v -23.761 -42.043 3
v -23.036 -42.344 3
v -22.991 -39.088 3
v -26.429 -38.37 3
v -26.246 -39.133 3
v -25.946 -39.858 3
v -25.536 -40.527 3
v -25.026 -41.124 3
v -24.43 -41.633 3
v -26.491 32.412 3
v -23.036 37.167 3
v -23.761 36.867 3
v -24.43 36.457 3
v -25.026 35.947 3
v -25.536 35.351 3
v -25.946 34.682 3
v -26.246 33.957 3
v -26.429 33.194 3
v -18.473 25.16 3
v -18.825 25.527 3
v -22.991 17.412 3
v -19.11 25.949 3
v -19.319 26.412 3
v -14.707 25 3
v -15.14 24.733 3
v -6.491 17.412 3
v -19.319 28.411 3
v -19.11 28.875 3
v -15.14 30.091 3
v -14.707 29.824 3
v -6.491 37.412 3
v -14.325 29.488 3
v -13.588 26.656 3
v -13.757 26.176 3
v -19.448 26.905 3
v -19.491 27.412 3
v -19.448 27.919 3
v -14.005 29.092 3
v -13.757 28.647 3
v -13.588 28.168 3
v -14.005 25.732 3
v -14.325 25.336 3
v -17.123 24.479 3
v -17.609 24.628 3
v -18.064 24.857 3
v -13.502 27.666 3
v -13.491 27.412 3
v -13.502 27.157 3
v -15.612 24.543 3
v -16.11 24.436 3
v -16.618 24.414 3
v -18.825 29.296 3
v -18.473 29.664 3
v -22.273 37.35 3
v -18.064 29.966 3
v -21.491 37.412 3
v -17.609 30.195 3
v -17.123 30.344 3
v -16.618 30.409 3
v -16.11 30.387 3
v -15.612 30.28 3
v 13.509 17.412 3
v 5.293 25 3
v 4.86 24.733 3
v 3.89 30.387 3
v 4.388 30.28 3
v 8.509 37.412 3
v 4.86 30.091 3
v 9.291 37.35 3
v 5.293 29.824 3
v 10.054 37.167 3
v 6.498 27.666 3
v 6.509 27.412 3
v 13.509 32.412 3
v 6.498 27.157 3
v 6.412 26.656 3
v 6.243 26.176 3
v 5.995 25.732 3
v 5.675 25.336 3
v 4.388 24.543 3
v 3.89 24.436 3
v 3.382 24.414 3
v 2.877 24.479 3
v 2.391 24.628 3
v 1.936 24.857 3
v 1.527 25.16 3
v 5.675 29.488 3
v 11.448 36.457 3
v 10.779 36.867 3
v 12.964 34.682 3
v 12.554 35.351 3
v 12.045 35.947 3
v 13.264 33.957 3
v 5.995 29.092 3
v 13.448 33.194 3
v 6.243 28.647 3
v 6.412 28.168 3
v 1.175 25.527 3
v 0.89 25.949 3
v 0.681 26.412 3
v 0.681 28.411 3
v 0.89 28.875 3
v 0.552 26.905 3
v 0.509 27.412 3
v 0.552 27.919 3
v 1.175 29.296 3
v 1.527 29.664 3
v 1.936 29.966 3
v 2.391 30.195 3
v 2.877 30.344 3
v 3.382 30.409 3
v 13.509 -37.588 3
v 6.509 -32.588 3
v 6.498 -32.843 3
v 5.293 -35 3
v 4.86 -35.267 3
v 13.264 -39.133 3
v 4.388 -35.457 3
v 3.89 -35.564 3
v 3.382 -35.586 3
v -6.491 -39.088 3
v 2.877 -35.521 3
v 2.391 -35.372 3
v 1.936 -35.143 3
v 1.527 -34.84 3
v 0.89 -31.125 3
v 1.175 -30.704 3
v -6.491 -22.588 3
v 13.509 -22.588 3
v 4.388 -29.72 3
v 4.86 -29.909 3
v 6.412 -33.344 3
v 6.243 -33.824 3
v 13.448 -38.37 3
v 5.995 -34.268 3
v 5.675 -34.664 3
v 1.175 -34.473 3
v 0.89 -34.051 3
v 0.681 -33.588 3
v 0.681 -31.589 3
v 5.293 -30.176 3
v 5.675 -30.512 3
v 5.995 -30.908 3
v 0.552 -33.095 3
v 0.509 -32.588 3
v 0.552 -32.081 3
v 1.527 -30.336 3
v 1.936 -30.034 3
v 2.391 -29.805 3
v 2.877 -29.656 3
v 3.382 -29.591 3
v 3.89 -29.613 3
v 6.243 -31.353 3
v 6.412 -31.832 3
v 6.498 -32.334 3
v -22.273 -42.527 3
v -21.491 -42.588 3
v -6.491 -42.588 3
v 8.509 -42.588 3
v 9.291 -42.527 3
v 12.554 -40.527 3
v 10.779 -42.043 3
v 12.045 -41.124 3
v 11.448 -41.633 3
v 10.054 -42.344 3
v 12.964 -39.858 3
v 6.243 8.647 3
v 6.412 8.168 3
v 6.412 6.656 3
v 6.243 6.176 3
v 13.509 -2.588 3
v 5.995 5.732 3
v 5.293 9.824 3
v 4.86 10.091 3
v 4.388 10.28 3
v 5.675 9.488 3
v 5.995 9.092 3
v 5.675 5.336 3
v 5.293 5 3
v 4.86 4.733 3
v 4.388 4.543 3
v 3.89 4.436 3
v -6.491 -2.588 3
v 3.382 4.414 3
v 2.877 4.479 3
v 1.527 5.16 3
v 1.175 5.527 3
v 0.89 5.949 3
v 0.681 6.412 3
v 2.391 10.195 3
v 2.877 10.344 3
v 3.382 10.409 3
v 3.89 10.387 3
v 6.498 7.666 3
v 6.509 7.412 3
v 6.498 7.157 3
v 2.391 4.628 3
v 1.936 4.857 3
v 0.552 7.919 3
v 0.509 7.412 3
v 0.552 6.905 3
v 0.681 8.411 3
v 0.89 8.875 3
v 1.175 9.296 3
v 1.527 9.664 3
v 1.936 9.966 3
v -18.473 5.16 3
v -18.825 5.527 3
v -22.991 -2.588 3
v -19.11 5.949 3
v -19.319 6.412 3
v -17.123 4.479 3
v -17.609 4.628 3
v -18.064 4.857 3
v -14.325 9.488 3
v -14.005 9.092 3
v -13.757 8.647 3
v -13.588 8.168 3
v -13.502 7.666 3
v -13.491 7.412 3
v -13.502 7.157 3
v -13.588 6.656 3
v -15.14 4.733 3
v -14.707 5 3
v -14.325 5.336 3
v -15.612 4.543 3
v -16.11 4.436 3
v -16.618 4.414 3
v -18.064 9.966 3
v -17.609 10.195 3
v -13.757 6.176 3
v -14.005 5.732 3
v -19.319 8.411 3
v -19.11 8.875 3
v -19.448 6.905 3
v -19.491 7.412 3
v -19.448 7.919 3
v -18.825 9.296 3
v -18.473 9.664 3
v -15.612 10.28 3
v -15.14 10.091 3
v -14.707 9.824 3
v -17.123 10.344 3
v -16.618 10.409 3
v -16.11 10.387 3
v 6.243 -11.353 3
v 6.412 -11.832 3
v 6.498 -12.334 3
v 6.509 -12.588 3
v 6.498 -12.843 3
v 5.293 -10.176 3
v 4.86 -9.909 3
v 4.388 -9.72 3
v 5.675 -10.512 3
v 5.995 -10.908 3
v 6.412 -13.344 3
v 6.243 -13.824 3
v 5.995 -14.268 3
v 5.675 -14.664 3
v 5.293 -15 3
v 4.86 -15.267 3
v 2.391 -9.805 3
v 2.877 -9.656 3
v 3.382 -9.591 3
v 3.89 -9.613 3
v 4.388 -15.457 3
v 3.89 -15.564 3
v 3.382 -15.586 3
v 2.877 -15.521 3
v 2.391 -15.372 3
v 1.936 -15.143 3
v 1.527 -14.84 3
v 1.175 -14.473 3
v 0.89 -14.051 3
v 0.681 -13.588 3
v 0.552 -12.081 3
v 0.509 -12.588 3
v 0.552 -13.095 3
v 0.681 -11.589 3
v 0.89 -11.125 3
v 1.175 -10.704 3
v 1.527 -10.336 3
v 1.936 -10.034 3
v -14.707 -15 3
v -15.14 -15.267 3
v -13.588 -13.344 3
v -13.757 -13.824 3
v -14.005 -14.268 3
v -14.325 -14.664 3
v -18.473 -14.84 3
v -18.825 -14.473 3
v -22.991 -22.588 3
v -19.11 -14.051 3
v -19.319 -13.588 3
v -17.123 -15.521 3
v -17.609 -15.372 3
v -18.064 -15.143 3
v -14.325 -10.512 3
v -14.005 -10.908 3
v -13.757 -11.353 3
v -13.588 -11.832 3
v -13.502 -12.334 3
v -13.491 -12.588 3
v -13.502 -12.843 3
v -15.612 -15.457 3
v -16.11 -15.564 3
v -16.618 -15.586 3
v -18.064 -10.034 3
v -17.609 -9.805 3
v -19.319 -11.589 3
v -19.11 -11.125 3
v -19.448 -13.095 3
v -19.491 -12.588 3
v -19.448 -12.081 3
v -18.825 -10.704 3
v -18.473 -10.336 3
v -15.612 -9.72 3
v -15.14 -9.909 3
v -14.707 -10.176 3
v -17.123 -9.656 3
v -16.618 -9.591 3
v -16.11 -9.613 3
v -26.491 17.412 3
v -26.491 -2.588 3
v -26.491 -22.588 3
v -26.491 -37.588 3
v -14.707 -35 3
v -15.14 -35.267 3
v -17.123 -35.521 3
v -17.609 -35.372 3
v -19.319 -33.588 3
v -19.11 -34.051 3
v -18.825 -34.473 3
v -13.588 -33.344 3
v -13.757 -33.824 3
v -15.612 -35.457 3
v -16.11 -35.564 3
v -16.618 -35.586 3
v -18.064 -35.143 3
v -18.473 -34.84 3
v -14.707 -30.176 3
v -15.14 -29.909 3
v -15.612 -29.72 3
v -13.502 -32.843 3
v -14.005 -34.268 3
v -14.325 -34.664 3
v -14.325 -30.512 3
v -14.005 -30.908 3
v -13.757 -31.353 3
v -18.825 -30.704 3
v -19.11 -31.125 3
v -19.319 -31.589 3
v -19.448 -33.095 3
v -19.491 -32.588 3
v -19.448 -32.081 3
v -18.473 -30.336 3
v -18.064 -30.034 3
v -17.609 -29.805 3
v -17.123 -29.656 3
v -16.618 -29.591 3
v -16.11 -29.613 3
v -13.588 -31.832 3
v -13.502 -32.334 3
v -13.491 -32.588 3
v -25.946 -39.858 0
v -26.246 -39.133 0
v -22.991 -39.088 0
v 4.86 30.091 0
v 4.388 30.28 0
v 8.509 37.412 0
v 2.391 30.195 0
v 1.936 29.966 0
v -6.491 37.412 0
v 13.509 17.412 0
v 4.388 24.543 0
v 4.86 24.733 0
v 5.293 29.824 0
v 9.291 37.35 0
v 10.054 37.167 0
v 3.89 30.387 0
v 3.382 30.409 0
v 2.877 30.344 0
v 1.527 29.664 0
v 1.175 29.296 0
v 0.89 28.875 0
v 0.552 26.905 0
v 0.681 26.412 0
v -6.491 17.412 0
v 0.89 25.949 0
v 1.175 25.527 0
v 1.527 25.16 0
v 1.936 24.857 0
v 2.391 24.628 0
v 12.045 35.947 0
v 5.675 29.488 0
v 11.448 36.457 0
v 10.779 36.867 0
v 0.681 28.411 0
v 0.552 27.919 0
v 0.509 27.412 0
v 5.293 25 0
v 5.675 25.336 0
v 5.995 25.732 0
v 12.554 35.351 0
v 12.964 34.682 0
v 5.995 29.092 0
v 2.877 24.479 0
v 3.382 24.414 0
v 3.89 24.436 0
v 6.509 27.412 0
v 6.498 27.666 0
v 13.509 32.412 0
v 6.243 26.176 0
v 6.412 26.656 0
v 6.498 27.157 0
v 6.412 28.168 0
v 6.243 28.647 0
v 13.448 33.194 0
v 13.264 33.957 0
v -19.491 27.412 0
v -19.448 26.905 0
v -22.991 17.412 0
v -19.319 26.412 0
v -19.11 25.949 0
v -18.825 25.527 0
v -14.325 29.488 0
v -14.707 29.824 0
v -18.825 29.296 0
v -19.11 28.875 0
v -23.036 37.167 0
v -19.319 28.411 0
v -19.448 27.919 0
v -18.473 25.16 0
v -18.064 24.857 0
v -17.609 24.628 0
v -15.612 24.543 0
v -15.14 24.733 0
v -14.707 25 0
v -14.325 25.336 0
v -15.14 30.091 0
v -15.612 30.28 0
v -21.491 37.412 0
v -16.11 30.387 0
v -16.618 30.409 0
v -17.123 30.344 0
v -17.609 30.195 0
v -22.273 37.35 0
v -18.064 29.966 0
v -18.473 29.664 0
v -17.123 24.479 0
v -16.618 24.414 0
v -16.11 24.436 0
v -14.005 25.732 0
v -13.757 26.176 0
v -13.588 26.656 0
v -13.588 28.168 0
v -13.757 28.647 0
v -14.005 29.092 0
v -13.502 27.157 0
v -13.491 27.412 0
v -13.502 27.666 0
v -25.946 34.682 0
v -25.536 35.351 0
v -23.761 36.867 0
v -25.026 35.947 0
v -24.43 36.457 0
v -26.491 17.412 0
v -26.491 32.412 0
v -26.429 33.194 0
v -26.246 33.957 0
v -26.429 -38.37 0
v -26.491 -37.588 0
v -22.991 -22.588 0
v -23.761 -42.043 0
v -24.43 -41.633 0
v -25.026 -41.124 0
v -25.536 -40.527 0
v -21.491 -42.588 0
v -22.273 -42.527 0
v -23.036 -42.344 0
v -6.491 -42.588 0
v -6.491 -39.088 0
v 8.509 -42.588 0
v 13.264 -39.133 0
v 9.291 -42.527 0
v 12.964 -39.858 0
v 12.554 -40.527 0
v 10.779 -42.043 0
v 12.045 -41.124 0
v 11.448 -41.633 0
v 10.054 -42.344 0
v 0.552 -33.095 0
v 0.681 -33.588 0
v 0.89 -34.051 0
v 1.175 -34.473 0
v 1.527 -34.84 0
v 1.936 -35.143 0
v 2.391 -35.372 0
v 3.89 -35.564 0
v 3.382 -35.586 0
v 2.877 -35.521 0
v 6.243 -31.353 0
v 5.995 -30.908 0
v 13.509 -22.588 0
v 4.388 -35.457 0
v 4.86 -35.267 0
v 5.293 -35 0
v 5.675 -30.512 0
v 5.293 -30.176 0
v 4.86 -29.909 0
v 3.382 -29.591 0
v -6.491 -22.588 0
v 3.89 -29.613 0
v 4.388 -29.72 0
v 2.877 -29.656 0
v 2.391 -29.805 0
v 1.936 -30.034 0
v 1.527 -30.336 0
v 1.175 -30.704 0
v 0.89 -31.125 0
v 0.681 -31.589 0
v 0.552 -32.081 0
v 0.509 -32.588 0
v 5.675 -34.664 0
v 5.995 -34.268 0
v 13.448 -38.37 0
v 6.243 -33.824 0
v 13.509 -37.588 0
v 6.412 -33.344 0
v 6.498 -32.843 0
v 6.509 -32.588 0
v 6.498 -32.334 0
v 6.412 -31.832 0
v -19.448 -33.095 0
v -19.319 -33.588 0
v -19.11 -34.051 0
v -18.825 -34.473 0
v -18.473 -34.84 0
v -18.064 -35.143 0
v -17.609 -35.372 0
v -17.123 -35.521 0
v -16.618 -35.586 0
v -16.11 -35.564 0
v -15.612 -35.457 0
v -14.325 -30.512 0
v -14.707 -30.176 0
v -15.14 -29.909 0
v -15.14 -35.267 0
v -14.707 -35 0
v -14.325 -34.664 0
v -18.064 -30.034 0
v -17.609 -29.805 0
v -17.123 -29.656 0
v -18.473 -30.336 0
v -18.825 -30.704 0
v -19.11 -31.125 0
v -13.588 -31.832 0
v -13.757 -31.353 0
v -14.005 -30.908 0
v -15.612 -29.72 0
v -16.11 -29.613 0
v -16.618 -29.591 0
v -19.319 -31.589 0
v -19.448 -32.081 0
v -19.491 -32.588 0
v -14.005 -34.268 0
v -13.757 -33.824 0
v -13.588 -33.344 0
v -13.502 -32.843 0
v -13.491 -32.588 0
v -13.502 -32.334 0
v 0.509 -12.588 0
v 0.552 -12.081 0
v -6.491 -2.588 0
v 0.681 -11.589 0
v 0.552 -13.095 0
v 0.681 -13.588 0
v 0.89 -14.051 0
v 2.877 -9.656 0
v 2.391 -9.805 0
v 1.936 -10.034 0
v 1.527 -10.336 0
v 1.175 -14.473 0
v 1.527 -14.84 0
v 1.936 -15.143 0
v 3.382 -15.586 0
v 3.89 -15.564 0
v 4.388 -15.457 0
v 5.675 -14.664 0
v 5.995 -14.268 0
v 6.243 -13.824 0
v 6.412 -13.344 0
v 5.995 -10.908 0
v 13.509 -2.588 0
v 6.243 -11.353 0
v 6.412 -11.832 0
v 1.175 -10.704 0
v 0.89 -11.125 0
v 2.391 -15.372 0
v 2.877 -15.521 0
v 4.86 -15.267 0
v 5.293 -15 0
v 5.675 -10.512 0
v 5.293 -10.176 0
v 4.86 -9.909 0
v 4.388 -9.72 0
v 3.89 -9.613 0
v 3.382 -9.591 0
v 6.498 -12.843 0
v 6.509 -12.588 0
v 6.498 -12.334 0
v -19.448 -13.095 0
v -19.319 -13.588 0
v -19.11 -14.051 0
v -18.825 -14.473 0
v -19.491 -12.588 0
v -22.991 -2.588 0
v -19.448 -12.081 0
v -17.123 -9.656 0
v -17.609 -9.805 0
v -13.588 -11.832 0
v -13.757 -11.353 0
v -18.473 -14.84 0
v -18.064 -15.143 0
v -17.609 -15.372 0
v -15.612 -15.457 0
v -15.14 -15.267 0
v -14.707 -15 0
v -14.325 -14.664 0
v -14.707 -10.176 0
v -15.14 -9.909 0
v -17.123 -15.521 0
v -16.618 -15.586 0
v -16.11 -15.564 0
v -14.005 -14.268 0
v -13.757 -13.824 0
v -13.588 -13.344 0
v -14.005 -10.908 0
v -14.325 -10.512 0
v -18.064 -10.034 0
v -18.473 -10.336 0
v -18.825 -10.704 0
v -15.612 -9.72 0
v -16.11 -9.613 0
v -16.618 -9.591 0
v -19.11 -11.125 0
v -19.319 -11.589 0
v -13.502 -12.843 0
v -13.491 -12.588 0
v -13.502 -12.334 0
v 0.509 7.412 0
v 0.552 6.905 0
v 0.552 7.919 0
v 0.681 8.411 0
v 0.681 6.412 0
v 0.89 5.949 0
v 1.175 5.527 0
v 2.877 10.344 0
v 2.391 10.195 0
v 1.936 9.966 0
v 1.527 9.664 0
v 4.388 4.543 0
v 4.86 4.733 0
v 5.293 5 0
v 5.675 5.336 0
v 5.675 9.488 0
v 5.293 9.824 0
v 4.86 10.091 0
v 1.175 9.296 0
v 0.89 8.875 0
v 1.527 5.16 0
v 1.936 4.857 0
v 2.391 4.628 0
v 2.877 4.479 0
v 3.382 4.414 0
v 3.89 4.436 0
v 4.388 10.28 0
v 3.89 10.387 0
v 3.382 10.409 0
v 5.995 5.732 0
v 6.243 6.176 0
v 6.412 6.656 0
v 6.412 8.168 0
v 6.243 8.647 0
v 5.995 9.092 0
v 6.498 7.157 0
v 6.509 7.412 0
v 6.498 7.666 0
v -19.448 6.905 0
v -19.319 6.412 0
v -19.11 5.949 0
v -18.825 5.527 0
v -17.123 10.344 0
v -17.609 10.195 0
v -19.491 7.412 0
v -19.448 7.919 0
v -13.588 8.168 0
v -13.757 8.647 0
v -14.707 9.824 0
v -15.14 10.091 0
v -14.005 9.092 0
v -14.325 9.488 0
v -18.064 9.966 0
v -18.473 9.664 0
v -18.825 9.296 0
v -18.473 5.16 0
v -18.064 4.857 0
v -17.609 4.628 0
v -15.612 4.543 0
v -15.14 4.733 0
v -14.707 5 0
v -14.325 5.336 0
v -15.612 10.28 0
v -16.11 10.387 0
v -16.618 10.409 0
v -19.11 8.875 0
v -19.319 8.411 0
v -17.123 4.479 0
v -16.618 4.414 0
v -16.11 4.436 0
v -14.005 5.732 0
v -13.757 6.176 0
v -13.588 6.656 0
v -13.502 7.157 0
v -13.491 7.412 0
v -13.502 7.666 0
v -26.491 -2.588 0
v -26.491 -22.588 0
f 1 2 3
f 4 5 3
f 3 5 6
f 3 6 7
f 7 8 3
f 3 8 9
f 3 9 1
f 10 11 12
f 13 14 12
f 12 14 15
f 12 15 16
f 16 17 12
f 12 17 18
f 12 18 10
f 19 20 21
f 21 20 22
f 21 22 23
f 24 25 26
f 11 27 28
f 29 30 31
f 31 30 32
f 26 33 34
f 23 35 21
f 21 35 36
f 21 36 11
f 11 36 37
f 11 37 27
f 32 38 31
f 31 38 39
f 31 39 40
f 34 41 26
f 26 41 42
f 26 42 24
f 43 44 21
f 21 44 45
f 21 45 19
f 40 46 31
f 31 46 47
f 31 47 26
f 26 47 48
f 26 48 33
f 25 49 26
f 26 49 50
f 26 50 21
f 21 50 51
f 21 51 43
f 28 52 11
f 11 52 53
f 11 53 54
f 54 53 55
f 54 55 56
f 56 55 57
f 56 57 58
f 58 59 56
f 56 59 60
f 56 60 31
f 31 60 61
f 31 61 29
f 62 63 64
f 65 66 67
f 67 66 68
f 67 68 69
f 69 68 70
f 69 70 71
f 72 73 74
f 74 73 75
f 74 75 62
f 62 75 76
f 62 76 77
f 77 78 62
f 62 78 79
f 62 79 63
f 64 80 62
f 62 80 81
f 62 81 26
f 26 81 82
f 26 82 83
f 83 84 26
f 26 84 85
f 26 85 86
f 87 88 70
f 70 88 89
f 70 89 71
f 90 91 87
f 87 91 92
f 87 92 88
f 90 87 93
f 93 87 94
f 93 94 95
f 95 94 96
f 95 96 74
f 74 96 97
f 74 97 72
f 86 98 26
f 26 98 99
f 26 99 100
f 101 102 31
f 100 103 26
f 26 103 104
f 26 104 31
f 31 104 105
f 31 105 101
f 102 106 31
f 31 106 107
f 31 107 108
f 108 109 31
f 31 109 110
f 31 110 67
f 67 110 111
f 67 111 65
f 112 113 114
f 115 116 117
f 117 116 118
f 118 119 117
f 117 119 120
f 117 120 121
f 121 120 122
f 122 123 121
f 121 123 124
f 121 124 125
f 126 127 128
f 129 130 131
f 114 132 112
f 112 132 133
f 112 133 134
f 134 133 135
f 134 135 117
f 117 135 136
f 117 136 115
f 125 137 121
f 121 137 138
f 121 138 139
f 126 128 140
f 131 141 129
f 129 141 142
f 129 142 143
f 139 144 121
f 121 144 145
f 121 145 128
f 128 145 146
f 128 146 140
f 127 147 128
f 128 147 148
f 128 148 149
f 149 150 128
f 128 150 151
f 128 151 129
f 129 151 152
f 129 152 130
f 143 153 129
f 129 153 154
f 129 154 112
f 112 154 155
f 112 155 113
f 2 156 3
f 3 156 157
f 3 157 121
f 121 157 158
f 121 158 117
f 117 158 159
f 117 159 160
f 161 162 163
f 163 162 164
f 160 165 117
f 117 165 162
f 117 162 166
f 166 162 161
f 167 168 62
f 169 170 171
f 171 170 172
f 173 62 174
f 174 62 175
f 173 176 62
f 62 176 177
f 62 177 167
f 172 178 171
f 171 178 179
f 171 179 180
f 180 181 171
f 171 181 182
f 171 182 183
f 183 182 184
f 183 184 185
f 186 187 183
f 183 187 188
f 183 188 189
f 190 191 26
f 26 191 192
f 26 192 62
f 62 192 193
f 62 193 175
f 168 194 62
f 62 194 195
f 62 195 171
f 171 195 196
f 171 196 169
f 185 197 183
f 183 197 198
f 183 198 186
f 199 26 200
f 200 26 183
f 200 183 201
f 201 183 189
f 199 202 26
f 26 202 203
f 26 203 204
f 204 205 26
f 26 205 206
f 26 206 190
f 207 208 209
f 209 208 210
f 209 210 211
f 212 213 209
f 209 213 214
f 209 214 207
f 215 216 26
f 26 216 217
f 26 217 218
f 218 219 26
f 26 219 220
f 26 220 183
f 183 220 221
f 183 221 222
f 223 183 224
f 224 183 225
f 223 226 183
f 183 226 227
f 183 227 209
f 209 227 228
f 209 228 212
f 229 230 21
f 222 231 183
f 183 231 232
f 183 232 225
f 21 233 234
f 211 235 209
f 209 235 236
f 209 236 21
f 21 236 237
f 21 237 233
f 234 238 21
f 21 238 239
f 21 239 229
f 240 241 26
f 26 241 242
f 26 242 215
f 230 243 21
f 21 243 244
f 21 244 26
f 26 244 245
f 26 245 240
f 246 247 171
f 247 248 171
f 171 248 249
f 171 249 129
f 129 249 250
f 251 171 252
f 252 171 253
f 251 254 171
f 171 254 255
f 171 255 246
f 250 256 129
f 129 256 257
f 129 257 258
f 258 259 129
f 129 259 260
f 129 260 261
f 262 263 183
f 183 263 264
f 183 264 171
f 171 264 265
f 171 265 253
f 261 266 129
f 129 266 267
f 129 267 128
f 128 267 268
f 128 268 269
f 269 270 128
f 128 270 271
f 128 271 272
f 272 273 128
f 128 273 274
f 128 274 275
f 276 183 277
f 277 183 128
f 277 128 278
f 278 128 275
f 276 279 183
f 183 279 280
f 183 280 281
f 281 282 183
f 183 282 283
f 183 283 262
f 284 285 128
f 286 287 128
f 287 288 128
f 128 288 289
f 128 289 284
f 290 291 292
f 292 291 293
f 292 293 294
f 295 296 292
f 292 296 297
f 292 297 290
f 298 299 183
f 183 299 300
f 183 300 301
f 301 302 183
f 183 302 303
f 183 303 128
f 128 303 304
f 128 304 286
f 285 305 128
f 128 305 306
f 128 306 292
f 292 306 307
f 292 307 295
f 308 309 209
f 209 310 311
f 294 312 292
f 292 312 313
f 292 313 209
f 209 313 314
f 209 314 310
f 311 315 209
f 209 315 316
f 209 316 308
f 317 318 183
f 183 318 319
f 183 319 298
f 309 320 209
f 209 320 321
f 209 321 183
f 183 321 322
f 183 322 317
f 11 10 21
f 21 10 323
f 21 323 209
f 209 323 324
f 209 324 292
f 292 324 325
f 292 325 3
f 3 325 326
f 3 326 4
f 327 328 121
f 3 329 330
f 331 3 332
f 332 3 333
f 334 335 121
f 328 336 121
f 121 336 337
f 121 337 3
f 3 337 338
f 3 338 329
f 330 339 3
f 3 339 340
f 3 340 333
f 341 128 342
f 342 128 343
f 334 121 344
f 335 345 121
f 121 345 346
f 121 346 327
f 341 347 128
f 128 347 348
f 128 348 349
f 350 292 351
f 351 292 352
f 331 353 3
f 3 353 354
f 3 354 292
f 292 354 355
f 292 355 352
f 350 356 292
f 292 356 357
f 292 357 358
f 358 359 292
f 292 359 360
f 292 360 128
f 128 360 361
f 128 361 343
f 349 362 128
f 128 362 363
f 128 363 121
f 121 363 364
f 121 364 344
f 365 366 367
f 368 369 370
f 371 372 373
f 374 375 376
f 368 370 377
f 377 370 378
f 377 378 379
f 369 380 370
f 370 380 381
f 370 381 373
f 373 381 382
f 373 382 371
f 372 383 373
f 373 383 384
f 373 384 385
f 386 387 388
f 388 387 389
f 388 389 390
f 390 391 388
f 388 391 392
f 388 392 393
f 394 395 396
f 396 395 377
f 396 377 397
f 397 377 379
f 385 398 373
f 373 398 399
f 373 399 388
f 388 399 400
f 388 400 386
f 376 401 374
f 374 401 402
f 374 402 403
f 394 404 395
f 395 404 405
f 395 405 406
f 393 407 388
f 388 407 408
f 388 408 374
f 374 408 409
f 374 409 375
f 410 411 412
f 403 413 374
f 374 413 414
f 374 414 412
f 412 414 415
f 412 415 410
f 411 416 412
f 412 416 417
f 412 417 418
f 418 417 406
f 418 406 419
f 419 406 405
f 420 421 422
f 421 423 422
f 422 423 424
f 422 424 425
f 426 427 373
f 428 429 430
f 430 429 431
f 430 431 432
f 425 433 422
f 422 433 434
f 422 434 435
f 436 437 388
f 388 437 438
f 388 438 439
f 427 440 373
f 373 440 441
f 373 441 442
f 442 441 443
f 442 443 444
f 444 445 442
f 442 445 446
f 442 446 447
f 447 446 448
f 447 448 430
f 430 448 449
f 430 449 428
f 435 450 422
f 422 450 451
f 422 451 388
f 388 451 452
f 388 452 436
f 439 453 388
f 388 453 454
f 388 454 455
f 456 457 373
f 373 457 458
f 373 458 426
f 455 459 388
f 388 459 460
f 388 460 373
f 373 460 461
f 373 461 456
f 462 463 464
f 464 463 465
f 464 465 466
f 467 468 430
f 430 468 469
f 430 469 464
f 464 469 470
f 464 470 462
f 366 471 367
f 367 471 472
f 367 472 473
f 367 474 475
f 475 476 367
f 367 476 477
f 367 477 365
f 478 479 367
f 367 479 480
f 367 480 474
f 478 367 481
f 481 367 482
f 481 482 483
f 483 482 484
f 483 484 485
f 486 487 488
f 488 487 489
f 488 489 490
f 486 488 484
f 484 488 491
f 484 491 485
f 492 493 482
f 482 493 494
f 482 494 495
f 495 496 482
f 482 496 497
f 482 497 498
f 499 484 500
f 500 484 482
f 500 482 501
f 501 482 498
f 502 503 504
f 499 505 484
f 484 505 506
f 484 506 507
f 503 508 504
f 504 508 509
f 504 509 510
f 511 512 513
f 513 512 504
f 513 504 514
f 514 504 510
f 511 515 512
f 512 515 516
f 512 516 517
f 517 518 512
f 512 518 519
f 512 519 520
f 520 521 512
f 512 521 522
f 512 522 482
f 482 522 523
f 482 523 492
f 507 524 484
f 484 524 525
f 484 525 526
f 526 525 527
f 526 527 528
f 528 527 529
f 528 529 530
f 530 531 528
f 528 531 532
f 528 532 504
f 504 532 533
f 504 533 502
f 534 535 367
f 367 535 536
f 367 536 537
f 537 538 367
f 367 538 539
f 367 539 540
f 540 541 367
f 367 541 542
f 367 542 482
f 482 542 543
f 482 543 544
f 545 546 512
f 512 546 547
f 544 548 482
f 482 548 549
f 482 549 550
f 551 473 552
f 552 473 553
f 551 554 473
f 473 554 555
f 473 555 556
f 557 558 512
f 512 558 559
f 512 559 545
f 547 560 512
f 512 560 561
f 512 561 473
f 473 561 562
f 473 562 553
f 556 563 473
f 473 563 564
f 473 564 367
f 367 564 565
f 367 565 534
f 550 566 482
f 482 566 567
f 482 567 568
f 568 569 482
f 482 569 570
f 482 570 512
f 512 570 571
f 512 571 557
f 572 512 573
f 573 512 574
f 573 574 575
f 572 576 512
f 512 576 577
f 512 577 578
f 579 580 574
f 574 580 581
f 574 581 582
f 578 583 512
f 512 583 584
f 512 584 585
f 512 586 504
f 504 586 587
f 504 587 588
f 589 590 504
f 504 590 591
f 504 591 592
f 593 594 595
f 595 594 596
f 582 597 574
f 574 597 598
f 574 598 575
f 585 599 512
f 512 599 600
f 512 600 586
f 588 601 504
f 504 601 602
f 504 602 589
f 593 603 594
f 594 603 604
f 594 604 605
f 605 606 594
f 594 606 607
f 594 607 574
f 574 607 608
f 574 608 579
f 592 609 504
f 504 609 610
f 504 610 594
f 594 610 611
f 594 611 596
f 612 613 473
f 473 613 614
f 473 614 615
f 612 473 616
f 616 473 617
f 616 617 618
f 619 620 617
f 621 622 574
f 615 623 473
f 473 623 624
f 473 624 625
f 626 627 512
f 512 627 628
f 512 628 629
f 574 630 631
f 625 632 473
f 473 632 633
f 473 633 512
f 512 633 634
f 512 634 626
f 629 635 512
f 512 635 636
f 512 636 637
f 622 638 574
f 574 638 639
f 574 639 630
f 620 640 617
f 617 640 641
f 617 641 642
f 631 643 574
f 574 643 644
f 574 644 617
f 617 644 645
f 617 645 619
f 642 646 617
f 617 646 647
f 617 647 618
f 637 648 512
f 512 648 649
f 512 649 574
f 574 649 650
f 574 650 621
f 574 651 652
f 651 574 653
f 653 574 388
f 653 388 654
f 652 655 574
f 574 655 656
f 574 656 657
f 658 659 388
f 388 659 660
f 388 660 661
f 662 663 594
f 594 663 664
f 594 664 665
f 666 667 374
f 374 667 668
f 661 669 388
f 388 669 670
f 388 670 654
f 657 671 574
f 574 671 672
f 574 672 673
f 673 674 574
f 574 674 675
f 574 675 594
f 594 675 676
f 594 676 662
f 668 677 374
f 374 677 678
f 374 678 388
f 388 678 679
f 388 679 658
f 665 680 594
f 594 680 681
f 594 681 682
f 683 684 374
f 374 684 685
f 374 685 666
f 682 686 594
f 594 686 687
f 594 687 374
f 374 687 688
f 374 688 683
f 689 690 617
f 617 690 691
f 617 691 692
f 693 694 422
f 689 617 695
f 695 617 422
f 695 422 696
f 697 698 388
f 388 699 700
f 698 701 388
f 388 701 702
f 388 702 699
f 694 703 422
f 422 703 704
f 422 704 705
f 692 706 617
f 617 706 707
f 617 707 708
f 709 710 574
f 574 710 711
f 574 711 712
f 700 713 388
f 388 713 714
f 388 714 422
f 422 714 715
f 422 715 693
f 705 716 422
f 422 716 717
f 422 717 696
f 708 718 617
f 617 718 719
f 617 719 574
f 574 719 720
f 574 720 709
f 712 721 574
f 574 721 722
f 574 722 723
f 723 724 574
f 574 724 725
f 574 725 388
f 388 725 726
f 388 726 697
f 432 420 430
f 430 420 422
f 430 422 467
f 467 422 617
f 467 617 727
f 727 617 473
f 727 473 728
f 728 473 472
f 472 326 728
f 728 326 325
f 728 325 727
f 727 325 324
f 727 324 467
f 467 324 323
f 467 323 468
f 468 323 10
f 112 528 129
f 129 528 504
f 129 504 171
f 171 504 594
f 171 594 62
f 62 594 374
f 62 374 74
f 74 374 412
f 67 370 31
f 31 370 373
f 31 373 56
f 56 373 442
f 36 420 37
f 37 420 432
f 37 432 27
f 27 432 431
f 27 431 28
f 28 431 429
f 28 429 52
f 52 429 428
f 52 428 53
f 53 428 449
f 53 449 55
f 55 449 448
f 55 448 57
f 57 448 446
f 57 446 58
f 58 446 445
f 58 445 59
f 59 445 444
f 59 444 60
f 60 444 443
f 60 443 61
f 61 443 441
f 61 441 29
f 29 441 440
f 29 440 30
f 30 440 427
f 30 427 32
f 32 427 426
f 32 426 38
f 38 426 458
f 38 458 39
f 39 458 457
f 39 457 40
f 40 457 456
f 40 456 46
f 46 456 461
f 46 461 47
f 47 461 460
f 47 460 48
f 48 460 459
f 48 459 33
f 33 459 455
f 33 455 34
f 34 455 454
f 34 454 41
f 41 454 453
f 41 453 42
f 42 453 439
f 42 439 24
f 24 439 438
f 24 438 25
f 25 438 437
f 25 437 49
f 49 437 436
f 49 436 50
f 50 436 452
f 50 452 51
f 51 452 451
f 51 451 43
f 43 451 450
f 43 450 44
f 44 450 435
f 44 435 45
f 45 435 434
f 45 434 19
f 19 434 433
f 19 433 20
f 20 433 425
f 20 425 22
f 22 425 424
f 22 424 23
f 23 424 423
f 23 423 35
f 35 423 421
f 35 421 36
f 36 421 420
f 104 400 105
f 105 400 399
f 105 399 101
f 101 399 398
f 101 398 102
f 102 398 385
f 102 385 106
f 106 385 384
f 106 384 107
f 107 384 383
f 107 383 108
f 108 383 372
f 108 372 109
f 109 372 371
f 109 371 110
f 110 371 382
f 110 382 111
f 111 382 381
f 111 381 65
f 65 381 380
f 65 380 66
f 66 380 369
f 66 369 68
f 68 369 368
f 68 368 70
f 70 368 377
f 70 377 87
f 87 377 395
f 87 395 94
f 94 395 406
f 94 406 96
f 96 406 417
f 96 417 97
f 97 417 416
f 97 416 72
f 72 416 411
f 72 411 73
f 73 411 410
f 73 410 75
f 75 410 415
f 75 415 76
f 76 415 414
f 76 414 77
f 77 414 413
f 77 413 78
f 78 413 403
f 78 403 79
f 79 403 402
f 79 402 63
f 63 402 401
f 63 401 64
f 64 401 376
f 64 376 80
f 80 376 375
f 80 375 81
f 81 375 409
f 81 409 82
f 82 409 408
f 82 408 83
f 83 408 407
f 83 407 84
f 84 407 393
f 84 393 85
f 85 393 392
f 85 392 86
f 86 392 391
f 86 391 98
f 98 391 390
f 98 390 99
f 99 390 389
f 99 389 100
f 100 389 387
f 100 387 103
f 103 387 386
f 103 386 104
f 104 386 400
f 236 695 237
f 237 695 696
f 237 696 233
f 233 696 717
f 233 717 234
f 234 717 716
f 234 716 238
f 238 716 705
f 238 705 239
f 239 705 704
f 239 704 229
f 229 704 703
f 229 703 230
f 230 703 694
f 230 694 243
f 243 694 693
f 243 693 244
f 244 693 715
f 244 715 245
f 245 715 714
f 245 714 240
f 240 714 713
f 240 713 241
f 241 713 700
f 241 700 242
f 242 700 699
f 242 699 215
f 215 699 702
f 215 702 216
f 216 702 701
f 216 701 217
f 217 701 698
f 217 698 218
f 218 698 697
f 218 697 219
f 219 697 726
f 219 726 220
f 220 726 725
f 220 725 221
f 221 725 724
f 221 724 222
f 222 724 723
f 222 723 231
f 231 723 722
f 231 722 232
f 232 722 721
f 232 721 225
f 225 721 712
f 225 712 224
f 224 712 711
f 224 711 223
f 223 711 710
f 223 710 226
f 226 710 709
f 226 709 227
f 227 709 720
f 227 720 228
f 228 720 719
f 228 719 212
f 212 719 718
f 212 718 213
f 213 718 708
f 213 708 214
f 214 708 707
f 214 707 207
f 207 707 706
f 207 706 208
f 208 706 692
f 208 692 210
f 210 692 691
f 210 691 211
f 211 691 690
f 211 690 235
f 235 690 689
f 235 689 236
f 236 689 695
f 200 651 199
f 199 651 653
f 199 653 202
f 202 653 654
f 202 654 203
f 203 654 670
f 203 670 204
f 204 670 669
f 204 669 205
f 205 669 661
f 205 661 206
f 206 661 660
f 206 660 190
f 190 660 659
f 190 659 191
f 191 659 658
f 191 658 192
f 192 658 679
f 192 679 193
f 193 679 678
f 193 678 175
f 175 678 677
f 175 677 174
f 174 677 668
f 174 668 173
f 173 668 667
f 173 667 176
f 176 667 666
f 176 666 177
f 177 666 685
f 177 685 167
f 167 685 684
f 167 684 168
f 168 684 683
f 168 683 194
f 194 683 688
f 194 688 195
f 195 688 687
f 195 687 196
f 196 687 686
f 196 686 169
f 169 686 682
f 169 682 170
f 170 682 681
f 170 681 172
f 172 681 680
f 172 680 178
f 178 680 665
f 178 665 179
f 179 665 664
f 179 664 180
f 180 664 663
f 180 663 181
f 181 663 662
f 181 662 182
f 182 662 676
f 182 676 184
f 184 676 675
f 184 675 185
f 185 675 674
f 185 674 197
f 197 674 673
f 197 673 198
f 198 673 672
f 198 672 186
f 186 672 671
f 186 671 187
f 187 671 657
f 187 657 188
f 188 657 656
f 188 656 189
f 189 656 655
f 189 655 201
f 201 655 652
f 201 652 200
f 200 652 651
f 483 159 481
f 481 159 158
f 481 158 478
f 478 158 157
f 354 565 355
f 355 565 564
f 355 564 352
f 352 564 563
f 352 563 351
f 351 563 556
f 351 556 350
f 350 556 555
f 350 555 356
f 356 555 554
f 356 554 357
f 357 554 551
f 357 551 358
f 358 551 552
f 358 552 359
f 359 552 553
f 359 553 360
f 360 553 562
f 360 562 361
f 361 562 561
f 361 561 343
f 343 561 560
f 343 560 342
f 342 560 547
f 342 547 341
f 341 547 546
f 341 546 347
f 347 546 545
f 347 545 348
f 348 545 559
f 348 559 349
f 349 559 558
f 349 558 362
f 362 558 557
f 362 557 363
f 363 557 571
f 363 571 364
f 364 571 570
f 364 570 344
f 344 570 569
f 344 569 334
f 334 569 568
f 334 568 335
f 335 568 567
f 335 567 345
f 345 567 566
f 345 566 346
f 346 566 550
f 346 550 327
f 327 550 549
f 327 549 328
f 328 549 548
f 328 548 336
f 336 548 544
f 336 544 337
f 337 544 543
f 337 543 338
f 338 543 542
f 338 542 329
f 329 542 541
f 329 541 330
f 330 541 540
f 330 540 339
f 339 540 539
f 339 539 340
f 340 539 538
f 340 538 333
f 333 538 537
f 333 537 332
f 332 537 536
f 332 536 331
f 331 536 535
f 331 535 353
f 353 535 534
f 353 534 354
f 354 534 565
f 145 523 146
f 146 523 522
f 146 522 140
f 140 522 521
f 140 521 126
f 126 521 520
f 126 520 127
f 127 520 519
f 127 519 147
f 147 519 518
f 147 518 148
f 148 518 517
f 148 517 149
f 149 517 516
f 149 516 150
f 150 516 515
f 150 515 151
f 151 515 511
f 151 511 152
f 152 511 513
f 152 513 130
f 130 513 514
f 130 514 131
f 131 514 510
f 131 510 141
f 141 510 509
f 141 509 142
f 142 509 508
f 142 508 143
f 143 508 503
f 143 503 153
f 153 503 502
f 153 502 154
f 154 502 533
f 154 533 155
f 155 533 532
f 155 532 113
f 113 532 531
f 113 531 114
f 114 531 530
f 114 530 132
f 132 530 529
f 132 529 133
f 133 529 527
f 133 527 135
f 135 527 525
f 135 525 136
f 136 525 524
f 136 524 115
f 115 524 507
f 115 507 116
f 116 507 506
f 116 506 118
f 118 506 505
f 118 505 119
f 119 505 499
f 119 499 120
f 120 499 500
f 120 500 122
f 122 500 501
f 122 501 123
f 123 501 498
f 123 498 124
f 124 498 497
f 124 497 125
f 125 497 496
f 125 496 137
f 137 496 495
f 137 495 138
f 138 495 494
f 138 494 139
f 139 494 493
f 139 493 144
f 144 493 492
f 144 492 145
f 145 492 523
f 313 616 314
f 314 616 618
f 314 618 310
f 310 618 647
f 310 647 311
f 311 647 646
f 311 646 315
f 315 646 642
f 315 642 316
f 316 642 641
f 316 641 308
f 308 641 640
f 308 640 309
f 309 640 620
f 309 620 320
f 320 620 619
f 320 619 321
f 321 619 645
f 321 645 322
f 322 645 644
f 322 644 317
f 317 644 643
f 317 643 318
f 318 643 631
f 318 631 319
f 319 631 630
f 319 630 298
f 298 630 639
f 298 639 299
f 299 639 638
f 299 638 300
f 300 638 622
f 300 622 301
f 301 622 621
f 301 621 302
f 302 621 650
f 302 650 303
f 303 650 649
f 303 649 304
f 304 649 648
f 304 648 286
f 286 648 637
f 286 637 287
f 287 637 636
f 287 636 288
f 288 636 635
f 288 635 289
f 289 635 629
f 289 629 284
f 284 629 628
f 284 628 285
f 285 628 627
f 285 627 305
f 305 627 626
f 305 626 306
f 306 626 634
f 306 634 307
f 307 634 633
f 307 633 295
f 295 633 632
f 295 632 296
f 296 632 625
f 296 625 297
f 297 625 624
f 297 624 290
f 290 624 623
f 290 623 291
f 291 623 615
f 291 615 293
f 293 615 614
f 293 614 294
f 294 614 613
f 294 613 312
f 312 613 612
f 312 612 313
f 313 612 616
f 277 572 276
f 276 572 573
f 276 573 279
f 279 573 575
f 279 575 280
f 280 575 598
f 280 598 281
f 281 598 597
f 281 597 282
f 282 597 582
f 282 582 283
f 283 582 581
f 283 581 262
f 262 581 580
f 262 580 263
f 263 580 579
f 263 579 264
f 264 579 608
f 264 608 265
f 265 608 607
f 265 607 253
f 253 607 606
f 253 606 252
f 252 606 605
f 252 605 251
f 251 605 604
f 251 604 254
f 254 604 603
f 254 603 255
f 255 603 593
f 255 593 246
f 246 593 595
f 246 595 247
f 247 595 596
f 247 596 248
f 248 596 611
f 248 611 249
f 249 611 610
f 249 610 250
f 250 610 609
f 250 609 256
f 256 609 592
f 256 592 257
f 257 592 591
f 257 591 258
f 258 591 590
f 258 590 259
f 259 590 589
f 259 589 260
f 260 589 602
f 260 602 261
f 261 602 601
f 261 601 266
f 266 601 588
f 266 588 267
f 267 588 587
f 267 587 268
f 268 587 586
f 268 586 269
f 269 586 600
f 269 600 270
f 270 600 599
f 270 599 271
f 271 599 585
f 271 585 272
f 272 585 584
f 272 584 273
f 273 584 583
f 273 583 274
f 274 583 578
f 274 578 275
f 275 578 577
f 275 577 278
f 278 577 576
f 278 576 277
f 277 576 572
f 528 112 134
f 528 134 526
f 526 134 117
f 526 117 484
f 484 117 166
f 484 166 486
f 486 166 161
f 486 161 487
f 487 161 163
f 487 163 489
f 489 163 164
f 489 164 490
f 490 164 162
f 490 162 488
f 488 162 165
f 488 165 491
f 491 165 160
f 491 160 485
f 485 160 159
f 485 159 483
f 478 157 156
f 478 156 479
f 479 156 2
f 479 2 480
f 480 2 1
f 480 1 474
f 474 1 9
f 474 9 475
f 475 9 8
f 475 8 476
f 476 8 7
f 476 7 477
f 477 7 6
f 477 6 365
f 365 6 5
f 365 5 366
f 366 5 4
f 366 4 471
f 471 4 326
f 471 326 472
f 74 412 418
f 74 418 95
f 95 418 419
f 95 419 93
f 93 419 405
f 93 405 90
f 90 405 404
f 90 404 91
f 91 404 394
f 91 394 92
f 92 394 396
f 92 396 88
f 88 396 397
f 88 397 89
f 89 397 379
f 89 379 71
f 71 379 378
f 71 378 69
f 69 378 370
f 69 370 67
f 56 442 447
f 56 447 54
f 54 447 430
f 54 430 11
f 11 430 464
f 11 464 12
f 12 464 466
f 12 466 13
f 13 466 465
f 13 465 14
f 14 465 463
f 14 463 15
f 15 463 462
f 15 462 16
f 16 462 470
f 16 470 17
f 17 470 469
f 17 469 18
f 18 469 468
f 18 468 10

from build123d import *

# Parameters (mm, degrees)
SZKIC1_W                    = 40
SZKIC1_H                    = 40
SZKIC1_R                    = 3
DODANIE_WYCI_GNI_CIE1_DEPTH = 3
ZAOKR_GLENIE1_R             = 5


with BuildPart() as part:
    # Szkic1 → Dodanie-wyciągnięcie1 (new body)
    with BuildSketch(Plane.XY):
        with Locations((-6.490790255, 17.411764706)):
            Rectangle(SZKIC1_W, SZKIC1_H)
        with Locations((-16.490790255, 27.411764706)):
            Circle(SZKIC1_R, mode=Mode.SUBTRACT)
        with Locations((3.509209745, 27.411764706)):
            Circle(SZKIC1_R, mode=Mode.SUBTRACT)
        with Locations((-16.490790255, 7.411764706)):
            Circle(SZKIC1_R, mode=Mode.SUBTRACT)
        with Locations((3.509209745, 7.411764706)):
            Circle(SZKIC1_R, mode=Mode.SUBTRACT)
    dodanie_wyci_gni_cie1 = extrude(amount=DODANIE_WYCI_GNI_CIE1_DEPTH)

    # Lustro2: Dodanie-wyciągnięcie1 across plane
    add(dodanie_wyci_gni_cie1.mirror(Plane(origin=(-26.490790255, -2.588235294, 3), x_dir=(0, 0, 1), z_dir=(0, 1, 0))))

    # Zaokrąglenie1
    zaokr_glenie1_edges = [part.edges().sort_by_distance(p)[0] for p in [
        (-26.490790255, -42.588235294, 1.5),
        (13.509209745, -42.588235294, 1.5),
        (-26.490790255, 37.411764706, 1.5),
        (13.509209745, 37.411764706, 1.5),
    ]]
    fillet(zaokr_glenie1_edges, radius=ZAOKR_GLENIE1_R)


solid = part.part
